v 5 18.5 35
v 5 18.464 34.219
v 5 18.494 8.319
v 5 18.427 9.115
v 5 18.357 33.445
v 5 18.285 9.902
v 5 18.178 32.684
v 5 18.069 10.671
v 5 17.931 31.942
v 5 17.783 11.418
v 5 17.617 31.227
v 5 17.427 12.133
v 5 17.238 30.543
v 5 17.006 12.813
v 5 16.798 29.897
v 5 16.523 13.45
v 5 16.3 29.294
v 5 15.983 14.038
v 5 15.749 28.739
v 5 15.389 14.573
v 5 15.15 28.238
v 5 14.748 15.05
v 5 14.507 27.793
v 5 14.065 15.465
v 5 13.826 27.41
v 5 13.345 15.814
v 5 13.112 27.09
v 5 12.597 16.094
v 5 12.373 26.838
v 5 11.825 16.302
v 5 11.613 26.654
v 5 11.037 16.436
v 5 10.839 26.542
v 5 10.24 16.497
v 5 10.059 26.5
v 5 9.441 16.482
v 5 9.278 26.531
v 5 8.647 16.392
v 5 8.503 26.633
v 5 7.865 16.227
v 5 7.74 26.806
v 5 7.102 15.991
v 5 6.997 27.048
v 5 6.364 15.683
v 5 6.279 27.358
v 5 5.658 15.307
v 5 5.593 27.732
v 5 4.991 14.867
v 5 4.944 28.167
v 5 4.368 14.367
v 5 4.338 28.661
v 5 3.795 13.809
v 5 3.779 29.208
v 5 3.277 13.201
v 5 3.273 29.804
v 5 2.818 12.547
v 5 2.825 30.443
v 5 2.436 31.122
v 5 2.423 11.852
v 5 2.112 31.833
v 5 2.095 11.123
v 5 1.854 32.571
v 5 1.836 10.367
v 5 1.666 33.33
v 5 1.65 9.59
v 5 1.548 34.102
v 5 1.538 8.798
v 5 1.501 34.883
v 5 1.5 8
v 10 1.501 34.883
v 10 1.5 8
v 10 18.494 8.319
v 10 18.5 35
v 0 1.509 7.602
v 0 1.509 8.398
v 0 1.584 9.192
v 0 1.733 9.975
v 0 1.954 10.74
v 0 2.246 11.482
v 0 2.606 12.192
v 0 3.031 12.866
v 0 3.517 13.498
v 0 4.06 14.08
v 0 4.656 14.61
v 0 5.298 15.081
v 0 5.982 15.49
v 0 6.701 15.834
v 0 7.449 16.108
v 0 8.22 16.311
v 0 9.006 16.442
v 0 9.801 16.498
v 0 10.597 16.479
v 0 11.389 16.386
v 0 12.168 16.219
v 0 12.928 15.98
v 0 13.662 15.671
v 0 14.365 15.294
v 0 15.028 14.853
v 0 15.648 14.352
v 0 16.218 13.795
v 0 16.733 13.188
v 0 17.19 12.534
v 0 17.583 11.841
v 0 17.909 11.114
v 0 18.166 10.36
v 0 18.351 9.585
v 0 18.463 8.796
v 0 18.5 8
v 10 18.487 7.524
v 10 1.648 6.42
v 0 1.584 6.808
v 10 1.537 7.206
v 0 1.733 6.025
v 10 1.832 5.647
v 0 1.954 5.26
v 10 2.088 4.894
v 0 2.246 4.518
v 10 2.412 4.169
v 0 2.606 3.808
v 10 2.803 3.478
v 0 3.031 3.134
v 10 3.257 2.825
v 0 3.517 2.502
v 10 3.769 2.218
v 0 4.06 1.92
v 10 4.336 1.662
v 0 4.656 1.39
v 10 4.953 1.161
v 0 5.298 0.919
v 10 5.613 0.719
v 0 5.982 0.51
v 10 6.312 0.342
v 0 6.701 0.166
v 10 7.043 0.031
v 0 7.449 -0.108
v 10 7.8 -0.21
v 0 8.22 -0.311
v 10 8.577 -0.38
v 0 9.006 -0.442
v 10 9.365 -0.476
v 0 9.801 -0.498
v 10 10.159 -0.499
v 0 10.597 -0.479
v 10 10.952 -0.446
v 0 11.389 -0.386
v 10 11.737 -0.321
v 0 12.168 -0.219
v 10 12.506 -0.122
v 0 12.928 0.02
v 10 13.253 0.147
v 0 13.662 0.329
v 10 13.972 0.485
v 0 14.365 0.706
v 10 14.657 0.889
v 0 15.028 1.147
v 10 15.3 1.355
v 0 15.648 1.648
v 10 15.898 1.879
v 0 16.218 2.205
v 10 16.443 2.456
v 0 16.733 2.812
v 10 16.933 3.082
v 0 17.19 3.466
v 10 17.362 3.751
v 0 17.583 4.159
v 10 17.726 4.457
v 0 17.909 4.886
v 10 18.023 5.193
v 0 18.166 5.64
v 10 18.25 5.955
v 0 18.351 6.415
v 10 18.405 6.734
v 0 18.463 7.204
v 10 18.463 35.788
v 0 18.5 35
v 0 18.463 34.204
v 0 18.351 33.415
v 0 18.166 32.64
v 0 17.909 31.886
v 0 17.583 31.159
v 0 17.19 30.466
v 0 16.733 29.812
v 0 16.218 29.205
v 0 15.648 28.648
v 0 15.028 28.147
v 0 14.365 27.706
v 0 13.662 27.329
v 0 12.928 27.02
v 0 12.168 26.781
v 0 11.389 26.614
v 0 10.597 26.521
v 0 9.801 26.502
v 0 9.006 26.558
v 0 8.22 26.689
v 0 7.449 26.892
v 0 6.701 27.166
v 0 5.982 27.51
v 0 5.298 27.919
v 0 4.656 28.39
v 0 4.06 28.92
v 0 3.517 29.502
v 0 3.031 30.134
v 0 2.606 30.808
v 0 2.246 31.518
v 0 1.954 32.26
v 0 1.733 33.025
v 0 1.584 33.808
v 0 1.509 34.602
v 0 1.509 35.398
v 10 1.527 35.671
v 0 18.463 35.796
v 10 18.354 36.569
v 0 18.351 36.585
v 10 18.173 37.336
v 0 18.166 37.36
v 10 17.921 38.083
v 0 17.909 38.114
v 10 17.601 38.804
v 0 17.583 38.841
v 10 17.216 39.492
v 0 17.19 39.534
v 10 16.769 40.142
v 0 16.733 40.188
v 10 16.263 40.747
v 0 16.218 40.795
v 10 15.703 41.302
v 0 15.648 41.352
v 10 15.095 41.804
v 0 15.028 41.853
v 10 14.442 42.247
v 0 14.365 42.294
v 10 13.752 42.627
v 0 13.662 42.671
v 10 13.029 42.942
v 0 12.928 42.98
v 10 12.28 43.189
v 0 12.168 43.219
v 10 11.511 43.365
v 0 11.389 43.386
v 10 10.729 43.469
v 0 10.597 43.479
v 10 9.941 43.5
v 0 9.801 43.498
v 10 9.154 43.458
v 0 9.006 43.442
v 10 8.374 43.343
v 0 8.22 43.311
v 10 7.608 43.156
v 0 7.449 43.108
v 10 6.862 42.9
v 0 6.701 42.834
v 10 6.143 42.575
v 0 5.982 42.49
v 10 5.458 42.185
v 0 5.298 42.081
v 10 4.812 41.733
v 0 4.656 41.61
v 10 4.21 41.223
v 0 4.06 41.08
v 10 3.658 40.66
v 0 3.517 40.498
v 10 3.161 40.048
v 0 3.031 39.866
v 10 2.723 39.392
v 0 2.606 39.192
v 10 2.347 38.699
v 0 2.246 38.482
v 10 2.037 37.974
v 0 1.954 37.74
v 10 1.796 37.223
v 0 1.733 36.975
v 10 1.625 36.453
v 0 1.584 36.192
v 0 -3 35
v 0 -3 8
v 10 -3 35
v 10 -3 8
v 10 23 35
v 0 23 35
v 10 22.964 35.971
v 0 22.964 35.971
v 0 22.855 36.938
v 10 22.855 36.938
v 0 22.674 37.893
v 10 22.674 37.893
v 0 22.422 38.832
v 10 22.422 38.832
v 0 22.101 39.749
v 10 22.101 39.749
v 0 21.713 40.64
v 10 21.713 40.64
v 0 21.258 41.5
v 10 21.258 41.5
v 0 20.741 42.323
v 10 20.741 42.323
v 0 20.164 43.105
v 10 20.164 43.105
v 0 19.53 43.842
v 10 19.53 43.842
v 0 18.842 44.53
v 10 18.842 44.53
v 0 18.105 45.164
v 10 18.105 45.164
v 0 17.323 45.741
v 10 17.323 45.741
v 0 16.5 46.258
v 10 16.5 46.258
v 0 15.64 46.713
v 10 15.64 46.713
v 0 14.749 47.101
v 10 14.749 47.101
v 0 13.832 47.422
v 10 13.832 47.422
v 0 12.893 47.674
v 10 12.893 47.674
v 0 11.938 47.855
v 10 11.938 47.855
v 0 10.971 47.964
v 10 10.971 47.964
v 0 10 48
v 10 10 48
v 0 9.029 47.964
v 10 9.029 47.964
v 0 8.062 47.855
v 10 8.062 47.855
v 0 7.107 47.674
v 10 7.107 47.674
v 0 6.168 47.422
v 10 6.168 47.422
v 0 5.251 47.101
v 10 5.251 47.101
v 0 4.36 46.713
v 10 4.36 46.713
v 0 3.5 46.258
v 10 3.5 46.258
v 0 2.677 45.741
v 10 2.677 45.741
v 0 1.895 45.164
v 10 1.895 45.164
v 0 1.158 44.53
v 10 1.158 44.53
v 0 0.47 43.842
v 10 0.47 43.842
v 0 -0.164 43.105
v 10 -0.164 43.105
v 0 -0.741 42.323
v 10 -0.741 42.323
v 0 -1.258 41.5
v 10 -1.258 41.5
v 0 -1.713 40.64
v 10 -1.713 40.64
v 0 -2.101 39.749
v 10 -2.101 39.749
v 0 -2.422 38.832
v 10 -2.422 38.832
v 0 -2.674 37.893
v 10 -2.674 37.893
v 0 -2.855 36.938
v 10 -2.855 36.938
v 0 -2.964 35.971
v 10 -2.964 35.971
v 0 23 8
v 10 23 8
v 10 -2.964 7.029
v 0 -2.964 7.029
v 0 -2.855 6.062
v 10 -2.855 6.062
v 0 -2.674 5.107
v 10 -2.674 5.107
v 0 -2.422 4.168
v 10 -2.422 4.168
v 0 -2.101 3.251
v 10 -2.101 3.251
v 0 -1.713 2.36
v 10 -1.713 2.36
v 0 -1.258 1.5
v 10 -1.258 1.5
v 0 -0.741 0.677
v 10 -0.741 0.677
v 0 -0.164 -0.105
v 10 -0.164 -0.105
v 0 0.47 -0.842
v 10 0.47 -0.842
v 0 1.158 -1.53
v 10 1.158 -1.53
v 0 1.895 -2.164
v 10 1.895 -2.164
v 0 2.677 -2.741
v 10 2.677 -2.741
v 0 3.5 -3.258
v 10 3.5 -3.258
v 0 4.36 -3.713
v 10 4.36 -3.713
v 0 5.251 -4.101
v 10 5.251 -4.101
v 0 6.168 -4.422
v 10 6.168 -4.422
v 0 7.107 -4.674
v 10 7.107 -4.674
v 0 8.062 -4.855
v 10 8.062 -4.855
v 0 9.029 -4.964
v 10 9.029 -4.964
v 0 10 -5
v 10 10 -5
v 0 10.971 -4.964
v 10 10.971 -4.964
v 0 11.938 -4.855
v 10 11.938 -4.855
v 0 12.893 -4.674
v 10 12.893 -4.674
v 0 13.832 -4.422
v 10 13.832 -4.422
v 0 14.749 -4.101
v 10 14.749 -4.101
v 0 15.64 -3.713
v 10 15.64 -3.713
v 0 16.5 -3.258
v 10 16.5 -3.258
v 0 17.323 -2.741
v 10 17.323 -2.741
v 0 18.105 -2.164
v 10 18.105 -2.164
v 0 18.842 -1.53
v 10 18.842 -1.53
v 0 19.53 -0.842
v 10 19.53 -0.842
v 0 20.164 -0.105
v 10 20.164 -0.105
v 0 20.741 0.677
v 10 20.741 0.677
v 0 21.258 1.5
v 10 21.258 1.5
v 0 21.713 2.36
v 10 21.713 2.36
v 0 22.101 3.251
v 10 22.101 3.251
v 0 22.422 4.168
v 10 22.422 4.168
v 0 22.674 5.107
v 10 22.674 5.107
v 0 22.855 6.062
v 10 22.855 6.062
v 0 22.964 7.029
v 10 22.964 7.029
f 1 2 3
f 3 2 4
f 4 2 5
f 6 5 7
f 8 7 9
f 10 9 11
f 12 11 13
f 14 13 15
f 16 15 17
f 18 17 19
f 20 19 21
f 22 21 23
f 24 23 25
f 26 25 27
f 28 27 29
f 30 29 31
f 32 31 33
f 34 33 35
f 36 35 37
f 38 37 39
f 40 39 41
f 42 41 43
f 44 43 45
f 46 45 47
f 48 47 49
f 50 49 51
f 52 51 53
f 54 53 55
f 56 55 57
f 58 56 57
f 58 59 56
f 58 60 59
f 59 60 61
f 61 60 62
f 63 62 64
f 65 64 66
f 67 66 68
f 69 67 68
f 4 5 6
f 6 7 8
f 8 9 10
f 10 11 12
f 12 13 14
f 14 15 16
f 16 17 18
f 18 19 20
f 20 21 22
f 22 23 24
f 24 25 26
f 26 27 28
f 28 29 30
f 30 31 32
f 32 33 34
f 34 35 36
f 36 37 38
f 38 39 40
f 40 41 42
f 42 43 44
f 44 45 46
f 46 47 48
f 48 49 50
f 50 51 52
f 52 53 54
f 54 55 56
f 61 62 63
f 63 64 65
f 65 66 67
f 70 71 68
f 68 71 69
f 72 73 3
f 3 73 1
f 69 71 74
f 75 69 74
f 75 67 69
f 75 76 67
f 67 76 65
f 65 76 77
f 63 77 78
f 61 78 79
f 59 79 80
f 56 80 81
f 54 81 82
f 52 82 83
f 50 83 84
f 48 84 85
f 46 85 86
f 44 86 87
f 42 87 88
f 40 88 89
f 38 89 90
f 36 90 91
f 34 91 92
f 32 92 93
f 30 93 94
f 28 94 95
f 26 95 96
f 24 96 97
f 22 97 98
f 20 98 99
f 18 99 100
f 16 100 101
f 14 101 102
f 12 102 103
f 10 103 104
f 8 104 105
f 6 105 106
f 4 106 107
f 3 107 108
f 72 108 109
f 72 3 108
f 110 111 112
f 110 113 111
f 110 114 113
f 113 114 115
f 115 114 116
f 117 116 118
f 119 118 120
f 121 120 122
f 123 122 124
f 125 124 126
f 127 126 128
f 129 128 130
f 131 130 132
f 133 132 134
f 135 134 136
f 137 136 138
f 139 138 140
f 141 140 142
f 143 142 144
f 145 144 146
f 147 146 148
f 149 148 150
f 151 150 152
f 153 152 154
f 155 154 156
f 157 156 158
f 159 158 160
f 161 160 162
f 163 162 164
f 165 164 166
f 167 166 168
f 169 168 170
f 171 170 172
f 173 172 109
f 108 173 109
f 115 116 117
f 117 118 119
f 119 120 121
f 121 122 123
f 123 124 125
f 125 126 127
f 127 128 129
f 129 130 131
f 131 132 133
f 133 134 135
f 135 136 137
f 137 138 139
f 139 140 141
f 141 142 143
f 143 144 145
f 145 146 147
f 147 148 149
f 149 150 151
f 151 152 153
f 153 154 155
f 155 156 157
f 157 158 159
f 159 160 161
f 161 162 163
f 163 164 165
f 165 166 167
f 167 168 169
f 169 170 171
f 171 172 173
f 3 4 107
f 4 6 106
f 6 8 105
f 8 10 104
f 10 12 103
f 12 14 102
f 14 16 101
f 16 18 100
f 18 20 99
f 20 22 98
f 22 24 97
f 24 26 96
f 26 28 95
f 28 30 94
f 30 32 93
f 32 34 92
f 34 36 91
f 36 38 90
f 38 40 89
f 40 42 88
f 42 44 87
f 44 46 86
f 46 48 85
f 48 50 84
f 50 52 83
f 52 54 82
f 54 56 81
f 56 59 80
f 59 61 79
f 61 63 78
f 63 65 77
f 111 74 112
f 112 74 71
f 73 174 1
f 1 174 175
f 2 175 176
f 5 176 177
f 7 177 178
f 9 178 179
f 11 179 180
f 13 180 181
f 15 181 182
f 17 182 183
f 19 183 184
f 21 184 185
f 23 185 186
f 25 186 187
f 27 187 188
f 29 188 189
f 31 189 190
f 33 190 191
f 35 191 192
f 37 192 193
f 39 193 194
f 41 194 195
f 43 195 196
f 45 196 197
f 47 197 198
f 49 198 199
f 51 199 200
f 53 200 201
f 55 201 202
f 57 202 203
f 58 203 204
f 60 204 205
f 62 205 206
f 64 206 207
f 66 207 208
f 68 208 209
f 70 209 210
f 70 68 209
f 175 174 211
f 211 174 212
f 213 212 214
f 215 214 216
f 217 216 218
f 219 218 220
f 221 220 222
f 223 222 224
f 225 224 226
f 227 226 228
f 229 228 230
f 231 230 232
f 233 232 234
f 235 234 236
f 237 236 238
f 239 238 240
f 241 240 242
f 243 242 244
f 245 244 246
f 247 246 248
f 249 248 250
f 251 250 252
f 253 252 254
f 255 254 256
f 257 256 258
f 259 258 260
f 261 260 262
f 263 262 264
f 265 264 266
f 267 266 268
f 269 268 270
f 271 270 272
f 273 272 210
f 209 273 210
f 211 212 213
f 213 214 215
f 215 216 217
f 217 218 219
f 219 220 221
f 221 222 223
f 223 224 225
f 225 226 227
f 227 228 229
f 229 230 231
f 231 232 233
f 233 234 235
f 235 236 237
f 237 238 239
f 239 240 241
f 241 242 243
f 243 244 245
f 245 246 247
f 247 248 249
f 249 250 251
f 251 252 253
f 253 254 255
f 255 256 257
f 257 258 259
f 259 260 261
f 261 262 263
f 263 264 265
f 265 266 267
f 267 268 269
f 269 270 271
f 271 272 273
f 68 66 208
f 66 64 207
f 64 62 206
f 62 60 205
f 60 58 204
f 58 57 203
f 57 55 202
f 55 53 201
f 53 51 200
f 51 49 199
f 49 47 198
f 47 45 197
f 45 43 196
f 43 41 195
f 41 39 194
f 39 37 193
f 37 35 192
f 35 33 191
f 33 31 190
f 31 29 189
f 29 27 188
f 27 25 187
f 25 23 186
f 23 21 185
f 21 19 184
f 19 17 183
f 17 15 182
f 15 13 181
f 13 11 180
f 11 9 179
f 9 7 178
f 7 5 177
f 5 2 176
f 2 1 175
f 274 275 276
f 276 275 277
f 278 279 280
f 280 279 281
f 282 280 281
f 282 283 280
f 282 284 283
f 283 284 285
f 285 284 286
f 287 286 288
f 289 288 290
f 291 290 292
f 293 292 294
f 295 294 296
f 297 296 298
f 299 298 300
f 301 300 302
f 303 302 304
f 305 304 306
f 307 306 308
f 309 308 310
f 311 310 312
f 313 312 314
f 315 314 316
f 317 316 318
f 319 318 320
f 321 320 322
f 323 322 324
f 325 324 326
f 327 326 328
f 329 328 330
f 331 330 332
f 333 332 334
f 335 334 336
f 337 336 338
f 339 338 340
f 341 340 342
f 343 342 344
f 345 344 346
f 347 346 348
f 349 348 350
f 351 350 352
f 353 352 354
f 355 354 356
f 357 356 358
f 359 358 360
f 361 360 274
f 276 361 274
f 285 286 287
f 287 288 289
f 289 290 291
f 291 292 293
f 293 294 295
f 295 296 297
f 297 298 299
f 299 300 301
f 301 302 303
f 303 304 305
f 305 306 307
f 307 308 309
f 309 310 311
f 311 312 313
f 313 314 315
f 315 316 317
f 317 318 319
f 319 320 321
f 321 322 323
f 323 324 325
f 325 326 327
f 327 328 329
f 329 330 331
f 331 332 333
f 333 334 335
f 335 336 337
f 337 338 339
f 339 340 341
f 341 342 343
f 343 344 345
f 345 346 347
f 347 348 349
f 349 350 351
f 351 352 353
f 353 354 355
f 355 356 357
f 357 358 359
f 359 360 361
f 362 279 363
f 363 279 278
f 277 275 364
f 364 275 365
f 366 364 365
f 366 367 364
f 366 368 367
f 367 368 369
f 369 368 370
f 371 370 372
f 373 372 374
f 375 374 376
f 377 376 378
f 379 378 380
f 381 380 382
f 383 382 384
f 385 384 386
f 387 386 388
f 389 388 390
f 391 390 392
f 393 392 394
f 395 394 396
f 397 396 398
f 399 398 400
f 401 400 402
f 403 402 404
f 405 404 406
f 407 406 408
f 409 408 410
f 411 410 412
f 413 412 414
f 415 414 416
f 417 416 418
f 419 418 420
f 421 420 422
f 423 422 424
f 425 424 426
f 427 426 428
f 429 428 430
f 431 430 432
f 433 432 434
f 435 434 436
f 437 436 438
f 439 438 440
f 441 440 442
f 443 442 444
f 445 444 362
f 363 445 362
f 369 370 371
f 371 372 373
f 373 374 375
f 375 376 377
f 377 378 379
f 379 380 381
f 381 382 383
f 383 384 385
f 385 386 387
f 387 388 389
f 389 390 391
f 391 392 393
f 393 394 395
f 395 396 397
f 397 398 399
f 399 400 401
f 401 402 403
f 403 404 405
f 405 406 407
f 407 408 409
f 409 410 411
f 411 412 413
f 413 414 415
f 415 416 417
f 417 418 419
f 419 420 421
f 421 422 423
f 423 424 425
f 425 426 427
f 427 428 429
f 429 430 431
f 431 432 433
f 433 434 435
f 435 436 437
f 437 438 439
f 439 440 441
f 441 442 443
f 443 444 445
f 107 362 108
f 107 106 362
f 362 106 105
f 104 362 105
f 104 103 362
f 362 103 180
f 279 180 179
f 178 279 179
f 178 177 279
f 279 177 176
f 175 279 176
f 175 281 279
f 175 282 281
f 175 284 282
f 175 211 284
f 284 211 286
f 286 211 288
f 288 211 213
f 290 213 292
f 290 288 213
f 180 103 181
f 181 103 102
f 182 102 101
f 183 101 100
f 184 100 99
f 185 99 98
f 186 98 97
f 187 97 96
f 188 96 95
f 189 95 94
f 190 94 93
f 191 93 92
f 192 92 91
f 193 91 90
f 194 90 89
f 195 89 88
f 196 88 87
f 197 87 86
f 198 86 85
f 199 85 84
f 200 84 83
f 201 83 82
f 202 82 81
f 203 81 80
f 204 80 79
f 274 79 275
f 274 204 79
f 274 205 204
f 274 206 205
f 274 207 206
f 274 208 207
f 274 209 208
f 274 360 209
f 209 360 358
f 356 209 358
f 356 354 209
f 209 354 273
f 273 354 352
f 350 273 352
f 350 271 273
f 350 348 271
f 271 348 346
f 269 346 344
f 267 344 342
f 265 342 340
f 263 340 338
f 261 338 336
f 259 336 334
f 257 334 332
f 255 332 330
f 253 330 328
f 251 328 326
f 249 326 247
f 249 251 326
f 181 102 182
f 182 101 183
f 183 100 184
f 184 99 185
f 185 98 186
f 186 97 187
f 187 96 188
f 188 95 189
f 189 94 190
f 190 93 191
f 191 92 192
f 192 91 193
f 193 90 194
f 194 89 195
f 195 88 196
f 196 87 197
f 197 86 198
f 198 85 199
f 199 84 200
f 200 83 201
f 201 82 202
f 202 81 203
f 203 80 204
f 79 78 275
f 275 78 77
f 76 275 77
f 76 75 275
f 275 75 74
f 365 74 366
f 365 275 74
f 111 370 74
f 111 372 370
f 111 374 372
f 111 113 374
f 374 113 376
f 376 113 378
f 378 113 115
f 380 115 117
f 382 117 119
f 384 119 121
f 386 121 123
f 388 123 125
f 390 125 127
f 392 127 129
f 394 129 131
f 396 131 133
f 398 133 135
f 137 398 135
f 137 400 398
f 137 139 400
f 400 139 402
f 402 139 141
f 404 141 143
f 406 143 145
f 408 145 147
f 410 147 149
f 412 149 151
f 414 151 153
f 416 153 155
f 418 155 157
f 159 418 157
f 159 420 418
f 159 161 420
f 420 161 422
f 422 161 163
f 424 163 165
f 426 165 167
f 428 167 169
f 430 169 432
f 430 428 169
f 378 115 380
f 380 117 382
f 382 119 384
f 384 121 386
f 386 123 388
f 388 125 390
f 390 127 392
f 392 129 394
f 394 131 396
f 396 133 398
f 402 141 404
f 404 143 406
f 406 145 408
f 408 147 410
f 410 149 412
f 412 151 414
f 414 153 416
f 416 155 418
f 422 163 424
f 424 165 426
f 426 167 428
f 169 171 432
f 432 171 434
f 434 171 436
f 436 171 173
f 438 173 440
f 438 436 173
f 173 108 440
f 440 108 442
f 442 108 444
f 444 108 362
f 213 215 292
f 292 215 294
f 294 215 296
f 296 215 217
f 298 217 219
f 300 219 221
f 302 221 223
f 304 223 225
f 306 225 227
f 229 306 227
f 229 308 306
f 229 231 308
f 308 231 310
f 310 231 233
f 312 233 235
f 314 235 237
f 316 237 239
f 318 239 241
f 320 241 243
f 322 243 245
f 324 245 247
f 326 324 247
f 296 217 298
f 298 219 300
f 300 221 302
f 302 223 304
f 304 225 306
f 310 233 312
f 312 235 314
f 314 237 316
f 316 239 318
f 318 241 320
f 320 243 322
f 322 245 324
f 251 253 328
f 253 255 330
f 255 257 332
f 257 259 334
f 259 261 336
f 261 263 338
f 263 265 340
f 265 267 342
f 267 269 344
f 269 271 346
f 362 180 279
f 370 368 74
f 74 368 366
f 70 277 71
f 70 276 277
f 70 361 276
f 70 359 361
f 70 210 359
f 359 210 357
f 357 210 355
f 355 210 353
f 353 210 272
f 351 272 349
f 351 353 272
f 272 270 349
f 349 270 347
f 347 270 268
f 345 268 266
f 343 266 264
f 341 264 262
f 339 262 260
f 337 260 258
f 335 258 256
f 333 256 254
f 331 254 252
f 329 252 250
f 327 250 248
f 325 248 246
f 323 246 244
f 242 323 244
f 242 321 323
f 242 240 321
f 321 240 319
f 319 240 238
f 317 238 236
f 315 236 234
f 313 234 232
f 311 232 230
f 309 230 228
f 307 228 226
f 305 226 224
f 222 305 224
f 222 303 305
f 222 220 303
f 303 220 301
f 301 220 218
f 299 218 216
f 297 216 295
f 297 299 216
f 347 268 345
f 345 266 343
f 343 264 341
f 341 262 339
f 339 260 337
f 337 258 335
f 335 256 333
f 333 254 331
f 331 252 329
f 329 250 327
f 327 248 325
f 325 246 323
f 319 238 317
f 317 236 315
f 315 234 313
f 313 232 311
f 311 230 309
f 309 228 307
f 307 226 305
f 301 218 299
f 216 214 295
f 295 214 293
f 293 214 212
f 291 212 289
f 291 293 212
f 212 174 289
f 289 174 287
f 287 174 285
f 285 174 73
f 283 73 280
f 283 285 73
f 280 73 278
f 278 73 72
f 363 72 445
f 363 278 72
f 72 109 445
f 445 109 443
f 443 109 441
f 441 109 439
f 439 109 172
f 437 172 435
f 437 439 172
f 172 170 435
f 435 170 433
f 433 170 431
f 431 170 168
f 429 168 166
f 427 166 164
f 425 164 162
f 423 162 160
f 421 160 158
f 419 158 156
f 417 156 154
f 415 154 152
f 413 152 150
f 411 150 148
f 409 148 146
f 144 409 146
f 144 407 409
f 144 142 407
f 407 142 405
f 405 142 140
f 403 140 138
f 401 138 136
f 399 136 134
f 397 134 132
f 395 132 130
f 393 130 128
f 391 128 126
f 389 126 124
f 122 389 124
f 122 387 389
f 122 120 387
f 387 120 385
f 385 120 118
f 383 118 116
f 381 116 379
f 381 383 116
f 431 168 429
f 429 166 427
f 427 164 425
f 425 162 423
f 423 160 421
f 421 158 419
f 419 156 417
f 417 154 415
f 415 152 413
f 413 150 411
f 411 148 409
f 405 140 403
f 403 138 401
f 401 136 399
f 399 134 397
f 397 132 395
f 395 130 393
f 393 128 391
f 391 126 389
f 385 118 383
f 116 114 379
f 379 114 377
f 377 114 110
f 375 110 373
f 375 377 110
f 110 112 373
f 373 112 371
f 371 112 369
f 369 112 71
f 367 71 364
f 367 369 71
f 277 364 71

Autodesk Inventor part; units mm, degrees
ref_plane "YZ Plane" through (0, 0, 0) normal (1, 0, 0) x (0, 1, 0)
ref_plane "XZ Plane" through (0, 0, 0) normal (0, 1, 0) x (-1, 0, 0)
ref_plane "XY Plane" through (0, 0, 0) normal (0, 0, 1) x (1, 0, 0)
sketch "Sketch1" plane through (0, 0, 0) normal (1, 0, 0) x (0, 1, 0)
  arc A0 (18.5, 35) -> (1.5, 35) centre (10, 35) ccw
  arc A1 (1.5, 8) -> (18.5, 8) centre (10, 8) ccw
  arc A2 (23, 35) -> (-3, 35) centre (10, 35) ccw
  arc A3 (-3, 8) -> (23, 8) centre (10, 8) ccw
  line L0 (-3, 35) -> (-3, 8)
  line L1 (23, 35) -> (23, 8)
  circle A4 centre (10, 35) radius 8.5
  circle A5 centre (10, 8) radius 8.5
  dimension "d12" = 17
  dimension "d13" = 17
  dimension "d15" = 26
  dimension "d16" = 26
extrude "Extrusion1" add sketch "Sketch1" along normal blind 10
sketch "Sketch2" plane through (10, 0, 0) normal (1, 0, 0) x (0, 0, -1)
  circle A0 centre (-35, 10) radius 8.5
  circle A1 centre (-8, 10) radius 8.5
  circle A2 centre (-8, 10) radius 8.5
  line L0 (-35, 10) -> (-35, 18.5)
  circle A3 centre (-35, 10) radius 8.5
  line L1 (-35, 10) -> (-26.5, 10) construction
  line L2 (-35, 18.5) -> (-7.677334, 18.493873)
  line L3 (-8, 10) -> (-8, 1.5)
  line L4 (-8, 10) -> (0.5, 10) construction
  line L5 (-8, 1.5) -> (-35.117933, 1.500818)
  point P0 (0, 0)
  dimension "d19" = 90
  dimension "d20" = 90
sketch "Sketch2 outline for Extrusion2" plane through (10, 0, 0) normal (1, 0, 0) x (0, 0, -1)
  arc A0 (-8, 1.5) -> (-7.677334, 18.493873) centre (-8, 10) ccw
  line L0 (-35.117933, 1.500818) -> (-8, 1.5)
  arc A1 (-35, 18.5) -> (-35.117933, 1.500818) centre (-35, 10) ccw
  line L1 (-7.677334, 18.493873) -> (-35, 18.5)
extrude "Extrusion2" cut sketch "Sketch2 outline for Extrusion2" against normal blind 5
properties part number "Sensor support"
